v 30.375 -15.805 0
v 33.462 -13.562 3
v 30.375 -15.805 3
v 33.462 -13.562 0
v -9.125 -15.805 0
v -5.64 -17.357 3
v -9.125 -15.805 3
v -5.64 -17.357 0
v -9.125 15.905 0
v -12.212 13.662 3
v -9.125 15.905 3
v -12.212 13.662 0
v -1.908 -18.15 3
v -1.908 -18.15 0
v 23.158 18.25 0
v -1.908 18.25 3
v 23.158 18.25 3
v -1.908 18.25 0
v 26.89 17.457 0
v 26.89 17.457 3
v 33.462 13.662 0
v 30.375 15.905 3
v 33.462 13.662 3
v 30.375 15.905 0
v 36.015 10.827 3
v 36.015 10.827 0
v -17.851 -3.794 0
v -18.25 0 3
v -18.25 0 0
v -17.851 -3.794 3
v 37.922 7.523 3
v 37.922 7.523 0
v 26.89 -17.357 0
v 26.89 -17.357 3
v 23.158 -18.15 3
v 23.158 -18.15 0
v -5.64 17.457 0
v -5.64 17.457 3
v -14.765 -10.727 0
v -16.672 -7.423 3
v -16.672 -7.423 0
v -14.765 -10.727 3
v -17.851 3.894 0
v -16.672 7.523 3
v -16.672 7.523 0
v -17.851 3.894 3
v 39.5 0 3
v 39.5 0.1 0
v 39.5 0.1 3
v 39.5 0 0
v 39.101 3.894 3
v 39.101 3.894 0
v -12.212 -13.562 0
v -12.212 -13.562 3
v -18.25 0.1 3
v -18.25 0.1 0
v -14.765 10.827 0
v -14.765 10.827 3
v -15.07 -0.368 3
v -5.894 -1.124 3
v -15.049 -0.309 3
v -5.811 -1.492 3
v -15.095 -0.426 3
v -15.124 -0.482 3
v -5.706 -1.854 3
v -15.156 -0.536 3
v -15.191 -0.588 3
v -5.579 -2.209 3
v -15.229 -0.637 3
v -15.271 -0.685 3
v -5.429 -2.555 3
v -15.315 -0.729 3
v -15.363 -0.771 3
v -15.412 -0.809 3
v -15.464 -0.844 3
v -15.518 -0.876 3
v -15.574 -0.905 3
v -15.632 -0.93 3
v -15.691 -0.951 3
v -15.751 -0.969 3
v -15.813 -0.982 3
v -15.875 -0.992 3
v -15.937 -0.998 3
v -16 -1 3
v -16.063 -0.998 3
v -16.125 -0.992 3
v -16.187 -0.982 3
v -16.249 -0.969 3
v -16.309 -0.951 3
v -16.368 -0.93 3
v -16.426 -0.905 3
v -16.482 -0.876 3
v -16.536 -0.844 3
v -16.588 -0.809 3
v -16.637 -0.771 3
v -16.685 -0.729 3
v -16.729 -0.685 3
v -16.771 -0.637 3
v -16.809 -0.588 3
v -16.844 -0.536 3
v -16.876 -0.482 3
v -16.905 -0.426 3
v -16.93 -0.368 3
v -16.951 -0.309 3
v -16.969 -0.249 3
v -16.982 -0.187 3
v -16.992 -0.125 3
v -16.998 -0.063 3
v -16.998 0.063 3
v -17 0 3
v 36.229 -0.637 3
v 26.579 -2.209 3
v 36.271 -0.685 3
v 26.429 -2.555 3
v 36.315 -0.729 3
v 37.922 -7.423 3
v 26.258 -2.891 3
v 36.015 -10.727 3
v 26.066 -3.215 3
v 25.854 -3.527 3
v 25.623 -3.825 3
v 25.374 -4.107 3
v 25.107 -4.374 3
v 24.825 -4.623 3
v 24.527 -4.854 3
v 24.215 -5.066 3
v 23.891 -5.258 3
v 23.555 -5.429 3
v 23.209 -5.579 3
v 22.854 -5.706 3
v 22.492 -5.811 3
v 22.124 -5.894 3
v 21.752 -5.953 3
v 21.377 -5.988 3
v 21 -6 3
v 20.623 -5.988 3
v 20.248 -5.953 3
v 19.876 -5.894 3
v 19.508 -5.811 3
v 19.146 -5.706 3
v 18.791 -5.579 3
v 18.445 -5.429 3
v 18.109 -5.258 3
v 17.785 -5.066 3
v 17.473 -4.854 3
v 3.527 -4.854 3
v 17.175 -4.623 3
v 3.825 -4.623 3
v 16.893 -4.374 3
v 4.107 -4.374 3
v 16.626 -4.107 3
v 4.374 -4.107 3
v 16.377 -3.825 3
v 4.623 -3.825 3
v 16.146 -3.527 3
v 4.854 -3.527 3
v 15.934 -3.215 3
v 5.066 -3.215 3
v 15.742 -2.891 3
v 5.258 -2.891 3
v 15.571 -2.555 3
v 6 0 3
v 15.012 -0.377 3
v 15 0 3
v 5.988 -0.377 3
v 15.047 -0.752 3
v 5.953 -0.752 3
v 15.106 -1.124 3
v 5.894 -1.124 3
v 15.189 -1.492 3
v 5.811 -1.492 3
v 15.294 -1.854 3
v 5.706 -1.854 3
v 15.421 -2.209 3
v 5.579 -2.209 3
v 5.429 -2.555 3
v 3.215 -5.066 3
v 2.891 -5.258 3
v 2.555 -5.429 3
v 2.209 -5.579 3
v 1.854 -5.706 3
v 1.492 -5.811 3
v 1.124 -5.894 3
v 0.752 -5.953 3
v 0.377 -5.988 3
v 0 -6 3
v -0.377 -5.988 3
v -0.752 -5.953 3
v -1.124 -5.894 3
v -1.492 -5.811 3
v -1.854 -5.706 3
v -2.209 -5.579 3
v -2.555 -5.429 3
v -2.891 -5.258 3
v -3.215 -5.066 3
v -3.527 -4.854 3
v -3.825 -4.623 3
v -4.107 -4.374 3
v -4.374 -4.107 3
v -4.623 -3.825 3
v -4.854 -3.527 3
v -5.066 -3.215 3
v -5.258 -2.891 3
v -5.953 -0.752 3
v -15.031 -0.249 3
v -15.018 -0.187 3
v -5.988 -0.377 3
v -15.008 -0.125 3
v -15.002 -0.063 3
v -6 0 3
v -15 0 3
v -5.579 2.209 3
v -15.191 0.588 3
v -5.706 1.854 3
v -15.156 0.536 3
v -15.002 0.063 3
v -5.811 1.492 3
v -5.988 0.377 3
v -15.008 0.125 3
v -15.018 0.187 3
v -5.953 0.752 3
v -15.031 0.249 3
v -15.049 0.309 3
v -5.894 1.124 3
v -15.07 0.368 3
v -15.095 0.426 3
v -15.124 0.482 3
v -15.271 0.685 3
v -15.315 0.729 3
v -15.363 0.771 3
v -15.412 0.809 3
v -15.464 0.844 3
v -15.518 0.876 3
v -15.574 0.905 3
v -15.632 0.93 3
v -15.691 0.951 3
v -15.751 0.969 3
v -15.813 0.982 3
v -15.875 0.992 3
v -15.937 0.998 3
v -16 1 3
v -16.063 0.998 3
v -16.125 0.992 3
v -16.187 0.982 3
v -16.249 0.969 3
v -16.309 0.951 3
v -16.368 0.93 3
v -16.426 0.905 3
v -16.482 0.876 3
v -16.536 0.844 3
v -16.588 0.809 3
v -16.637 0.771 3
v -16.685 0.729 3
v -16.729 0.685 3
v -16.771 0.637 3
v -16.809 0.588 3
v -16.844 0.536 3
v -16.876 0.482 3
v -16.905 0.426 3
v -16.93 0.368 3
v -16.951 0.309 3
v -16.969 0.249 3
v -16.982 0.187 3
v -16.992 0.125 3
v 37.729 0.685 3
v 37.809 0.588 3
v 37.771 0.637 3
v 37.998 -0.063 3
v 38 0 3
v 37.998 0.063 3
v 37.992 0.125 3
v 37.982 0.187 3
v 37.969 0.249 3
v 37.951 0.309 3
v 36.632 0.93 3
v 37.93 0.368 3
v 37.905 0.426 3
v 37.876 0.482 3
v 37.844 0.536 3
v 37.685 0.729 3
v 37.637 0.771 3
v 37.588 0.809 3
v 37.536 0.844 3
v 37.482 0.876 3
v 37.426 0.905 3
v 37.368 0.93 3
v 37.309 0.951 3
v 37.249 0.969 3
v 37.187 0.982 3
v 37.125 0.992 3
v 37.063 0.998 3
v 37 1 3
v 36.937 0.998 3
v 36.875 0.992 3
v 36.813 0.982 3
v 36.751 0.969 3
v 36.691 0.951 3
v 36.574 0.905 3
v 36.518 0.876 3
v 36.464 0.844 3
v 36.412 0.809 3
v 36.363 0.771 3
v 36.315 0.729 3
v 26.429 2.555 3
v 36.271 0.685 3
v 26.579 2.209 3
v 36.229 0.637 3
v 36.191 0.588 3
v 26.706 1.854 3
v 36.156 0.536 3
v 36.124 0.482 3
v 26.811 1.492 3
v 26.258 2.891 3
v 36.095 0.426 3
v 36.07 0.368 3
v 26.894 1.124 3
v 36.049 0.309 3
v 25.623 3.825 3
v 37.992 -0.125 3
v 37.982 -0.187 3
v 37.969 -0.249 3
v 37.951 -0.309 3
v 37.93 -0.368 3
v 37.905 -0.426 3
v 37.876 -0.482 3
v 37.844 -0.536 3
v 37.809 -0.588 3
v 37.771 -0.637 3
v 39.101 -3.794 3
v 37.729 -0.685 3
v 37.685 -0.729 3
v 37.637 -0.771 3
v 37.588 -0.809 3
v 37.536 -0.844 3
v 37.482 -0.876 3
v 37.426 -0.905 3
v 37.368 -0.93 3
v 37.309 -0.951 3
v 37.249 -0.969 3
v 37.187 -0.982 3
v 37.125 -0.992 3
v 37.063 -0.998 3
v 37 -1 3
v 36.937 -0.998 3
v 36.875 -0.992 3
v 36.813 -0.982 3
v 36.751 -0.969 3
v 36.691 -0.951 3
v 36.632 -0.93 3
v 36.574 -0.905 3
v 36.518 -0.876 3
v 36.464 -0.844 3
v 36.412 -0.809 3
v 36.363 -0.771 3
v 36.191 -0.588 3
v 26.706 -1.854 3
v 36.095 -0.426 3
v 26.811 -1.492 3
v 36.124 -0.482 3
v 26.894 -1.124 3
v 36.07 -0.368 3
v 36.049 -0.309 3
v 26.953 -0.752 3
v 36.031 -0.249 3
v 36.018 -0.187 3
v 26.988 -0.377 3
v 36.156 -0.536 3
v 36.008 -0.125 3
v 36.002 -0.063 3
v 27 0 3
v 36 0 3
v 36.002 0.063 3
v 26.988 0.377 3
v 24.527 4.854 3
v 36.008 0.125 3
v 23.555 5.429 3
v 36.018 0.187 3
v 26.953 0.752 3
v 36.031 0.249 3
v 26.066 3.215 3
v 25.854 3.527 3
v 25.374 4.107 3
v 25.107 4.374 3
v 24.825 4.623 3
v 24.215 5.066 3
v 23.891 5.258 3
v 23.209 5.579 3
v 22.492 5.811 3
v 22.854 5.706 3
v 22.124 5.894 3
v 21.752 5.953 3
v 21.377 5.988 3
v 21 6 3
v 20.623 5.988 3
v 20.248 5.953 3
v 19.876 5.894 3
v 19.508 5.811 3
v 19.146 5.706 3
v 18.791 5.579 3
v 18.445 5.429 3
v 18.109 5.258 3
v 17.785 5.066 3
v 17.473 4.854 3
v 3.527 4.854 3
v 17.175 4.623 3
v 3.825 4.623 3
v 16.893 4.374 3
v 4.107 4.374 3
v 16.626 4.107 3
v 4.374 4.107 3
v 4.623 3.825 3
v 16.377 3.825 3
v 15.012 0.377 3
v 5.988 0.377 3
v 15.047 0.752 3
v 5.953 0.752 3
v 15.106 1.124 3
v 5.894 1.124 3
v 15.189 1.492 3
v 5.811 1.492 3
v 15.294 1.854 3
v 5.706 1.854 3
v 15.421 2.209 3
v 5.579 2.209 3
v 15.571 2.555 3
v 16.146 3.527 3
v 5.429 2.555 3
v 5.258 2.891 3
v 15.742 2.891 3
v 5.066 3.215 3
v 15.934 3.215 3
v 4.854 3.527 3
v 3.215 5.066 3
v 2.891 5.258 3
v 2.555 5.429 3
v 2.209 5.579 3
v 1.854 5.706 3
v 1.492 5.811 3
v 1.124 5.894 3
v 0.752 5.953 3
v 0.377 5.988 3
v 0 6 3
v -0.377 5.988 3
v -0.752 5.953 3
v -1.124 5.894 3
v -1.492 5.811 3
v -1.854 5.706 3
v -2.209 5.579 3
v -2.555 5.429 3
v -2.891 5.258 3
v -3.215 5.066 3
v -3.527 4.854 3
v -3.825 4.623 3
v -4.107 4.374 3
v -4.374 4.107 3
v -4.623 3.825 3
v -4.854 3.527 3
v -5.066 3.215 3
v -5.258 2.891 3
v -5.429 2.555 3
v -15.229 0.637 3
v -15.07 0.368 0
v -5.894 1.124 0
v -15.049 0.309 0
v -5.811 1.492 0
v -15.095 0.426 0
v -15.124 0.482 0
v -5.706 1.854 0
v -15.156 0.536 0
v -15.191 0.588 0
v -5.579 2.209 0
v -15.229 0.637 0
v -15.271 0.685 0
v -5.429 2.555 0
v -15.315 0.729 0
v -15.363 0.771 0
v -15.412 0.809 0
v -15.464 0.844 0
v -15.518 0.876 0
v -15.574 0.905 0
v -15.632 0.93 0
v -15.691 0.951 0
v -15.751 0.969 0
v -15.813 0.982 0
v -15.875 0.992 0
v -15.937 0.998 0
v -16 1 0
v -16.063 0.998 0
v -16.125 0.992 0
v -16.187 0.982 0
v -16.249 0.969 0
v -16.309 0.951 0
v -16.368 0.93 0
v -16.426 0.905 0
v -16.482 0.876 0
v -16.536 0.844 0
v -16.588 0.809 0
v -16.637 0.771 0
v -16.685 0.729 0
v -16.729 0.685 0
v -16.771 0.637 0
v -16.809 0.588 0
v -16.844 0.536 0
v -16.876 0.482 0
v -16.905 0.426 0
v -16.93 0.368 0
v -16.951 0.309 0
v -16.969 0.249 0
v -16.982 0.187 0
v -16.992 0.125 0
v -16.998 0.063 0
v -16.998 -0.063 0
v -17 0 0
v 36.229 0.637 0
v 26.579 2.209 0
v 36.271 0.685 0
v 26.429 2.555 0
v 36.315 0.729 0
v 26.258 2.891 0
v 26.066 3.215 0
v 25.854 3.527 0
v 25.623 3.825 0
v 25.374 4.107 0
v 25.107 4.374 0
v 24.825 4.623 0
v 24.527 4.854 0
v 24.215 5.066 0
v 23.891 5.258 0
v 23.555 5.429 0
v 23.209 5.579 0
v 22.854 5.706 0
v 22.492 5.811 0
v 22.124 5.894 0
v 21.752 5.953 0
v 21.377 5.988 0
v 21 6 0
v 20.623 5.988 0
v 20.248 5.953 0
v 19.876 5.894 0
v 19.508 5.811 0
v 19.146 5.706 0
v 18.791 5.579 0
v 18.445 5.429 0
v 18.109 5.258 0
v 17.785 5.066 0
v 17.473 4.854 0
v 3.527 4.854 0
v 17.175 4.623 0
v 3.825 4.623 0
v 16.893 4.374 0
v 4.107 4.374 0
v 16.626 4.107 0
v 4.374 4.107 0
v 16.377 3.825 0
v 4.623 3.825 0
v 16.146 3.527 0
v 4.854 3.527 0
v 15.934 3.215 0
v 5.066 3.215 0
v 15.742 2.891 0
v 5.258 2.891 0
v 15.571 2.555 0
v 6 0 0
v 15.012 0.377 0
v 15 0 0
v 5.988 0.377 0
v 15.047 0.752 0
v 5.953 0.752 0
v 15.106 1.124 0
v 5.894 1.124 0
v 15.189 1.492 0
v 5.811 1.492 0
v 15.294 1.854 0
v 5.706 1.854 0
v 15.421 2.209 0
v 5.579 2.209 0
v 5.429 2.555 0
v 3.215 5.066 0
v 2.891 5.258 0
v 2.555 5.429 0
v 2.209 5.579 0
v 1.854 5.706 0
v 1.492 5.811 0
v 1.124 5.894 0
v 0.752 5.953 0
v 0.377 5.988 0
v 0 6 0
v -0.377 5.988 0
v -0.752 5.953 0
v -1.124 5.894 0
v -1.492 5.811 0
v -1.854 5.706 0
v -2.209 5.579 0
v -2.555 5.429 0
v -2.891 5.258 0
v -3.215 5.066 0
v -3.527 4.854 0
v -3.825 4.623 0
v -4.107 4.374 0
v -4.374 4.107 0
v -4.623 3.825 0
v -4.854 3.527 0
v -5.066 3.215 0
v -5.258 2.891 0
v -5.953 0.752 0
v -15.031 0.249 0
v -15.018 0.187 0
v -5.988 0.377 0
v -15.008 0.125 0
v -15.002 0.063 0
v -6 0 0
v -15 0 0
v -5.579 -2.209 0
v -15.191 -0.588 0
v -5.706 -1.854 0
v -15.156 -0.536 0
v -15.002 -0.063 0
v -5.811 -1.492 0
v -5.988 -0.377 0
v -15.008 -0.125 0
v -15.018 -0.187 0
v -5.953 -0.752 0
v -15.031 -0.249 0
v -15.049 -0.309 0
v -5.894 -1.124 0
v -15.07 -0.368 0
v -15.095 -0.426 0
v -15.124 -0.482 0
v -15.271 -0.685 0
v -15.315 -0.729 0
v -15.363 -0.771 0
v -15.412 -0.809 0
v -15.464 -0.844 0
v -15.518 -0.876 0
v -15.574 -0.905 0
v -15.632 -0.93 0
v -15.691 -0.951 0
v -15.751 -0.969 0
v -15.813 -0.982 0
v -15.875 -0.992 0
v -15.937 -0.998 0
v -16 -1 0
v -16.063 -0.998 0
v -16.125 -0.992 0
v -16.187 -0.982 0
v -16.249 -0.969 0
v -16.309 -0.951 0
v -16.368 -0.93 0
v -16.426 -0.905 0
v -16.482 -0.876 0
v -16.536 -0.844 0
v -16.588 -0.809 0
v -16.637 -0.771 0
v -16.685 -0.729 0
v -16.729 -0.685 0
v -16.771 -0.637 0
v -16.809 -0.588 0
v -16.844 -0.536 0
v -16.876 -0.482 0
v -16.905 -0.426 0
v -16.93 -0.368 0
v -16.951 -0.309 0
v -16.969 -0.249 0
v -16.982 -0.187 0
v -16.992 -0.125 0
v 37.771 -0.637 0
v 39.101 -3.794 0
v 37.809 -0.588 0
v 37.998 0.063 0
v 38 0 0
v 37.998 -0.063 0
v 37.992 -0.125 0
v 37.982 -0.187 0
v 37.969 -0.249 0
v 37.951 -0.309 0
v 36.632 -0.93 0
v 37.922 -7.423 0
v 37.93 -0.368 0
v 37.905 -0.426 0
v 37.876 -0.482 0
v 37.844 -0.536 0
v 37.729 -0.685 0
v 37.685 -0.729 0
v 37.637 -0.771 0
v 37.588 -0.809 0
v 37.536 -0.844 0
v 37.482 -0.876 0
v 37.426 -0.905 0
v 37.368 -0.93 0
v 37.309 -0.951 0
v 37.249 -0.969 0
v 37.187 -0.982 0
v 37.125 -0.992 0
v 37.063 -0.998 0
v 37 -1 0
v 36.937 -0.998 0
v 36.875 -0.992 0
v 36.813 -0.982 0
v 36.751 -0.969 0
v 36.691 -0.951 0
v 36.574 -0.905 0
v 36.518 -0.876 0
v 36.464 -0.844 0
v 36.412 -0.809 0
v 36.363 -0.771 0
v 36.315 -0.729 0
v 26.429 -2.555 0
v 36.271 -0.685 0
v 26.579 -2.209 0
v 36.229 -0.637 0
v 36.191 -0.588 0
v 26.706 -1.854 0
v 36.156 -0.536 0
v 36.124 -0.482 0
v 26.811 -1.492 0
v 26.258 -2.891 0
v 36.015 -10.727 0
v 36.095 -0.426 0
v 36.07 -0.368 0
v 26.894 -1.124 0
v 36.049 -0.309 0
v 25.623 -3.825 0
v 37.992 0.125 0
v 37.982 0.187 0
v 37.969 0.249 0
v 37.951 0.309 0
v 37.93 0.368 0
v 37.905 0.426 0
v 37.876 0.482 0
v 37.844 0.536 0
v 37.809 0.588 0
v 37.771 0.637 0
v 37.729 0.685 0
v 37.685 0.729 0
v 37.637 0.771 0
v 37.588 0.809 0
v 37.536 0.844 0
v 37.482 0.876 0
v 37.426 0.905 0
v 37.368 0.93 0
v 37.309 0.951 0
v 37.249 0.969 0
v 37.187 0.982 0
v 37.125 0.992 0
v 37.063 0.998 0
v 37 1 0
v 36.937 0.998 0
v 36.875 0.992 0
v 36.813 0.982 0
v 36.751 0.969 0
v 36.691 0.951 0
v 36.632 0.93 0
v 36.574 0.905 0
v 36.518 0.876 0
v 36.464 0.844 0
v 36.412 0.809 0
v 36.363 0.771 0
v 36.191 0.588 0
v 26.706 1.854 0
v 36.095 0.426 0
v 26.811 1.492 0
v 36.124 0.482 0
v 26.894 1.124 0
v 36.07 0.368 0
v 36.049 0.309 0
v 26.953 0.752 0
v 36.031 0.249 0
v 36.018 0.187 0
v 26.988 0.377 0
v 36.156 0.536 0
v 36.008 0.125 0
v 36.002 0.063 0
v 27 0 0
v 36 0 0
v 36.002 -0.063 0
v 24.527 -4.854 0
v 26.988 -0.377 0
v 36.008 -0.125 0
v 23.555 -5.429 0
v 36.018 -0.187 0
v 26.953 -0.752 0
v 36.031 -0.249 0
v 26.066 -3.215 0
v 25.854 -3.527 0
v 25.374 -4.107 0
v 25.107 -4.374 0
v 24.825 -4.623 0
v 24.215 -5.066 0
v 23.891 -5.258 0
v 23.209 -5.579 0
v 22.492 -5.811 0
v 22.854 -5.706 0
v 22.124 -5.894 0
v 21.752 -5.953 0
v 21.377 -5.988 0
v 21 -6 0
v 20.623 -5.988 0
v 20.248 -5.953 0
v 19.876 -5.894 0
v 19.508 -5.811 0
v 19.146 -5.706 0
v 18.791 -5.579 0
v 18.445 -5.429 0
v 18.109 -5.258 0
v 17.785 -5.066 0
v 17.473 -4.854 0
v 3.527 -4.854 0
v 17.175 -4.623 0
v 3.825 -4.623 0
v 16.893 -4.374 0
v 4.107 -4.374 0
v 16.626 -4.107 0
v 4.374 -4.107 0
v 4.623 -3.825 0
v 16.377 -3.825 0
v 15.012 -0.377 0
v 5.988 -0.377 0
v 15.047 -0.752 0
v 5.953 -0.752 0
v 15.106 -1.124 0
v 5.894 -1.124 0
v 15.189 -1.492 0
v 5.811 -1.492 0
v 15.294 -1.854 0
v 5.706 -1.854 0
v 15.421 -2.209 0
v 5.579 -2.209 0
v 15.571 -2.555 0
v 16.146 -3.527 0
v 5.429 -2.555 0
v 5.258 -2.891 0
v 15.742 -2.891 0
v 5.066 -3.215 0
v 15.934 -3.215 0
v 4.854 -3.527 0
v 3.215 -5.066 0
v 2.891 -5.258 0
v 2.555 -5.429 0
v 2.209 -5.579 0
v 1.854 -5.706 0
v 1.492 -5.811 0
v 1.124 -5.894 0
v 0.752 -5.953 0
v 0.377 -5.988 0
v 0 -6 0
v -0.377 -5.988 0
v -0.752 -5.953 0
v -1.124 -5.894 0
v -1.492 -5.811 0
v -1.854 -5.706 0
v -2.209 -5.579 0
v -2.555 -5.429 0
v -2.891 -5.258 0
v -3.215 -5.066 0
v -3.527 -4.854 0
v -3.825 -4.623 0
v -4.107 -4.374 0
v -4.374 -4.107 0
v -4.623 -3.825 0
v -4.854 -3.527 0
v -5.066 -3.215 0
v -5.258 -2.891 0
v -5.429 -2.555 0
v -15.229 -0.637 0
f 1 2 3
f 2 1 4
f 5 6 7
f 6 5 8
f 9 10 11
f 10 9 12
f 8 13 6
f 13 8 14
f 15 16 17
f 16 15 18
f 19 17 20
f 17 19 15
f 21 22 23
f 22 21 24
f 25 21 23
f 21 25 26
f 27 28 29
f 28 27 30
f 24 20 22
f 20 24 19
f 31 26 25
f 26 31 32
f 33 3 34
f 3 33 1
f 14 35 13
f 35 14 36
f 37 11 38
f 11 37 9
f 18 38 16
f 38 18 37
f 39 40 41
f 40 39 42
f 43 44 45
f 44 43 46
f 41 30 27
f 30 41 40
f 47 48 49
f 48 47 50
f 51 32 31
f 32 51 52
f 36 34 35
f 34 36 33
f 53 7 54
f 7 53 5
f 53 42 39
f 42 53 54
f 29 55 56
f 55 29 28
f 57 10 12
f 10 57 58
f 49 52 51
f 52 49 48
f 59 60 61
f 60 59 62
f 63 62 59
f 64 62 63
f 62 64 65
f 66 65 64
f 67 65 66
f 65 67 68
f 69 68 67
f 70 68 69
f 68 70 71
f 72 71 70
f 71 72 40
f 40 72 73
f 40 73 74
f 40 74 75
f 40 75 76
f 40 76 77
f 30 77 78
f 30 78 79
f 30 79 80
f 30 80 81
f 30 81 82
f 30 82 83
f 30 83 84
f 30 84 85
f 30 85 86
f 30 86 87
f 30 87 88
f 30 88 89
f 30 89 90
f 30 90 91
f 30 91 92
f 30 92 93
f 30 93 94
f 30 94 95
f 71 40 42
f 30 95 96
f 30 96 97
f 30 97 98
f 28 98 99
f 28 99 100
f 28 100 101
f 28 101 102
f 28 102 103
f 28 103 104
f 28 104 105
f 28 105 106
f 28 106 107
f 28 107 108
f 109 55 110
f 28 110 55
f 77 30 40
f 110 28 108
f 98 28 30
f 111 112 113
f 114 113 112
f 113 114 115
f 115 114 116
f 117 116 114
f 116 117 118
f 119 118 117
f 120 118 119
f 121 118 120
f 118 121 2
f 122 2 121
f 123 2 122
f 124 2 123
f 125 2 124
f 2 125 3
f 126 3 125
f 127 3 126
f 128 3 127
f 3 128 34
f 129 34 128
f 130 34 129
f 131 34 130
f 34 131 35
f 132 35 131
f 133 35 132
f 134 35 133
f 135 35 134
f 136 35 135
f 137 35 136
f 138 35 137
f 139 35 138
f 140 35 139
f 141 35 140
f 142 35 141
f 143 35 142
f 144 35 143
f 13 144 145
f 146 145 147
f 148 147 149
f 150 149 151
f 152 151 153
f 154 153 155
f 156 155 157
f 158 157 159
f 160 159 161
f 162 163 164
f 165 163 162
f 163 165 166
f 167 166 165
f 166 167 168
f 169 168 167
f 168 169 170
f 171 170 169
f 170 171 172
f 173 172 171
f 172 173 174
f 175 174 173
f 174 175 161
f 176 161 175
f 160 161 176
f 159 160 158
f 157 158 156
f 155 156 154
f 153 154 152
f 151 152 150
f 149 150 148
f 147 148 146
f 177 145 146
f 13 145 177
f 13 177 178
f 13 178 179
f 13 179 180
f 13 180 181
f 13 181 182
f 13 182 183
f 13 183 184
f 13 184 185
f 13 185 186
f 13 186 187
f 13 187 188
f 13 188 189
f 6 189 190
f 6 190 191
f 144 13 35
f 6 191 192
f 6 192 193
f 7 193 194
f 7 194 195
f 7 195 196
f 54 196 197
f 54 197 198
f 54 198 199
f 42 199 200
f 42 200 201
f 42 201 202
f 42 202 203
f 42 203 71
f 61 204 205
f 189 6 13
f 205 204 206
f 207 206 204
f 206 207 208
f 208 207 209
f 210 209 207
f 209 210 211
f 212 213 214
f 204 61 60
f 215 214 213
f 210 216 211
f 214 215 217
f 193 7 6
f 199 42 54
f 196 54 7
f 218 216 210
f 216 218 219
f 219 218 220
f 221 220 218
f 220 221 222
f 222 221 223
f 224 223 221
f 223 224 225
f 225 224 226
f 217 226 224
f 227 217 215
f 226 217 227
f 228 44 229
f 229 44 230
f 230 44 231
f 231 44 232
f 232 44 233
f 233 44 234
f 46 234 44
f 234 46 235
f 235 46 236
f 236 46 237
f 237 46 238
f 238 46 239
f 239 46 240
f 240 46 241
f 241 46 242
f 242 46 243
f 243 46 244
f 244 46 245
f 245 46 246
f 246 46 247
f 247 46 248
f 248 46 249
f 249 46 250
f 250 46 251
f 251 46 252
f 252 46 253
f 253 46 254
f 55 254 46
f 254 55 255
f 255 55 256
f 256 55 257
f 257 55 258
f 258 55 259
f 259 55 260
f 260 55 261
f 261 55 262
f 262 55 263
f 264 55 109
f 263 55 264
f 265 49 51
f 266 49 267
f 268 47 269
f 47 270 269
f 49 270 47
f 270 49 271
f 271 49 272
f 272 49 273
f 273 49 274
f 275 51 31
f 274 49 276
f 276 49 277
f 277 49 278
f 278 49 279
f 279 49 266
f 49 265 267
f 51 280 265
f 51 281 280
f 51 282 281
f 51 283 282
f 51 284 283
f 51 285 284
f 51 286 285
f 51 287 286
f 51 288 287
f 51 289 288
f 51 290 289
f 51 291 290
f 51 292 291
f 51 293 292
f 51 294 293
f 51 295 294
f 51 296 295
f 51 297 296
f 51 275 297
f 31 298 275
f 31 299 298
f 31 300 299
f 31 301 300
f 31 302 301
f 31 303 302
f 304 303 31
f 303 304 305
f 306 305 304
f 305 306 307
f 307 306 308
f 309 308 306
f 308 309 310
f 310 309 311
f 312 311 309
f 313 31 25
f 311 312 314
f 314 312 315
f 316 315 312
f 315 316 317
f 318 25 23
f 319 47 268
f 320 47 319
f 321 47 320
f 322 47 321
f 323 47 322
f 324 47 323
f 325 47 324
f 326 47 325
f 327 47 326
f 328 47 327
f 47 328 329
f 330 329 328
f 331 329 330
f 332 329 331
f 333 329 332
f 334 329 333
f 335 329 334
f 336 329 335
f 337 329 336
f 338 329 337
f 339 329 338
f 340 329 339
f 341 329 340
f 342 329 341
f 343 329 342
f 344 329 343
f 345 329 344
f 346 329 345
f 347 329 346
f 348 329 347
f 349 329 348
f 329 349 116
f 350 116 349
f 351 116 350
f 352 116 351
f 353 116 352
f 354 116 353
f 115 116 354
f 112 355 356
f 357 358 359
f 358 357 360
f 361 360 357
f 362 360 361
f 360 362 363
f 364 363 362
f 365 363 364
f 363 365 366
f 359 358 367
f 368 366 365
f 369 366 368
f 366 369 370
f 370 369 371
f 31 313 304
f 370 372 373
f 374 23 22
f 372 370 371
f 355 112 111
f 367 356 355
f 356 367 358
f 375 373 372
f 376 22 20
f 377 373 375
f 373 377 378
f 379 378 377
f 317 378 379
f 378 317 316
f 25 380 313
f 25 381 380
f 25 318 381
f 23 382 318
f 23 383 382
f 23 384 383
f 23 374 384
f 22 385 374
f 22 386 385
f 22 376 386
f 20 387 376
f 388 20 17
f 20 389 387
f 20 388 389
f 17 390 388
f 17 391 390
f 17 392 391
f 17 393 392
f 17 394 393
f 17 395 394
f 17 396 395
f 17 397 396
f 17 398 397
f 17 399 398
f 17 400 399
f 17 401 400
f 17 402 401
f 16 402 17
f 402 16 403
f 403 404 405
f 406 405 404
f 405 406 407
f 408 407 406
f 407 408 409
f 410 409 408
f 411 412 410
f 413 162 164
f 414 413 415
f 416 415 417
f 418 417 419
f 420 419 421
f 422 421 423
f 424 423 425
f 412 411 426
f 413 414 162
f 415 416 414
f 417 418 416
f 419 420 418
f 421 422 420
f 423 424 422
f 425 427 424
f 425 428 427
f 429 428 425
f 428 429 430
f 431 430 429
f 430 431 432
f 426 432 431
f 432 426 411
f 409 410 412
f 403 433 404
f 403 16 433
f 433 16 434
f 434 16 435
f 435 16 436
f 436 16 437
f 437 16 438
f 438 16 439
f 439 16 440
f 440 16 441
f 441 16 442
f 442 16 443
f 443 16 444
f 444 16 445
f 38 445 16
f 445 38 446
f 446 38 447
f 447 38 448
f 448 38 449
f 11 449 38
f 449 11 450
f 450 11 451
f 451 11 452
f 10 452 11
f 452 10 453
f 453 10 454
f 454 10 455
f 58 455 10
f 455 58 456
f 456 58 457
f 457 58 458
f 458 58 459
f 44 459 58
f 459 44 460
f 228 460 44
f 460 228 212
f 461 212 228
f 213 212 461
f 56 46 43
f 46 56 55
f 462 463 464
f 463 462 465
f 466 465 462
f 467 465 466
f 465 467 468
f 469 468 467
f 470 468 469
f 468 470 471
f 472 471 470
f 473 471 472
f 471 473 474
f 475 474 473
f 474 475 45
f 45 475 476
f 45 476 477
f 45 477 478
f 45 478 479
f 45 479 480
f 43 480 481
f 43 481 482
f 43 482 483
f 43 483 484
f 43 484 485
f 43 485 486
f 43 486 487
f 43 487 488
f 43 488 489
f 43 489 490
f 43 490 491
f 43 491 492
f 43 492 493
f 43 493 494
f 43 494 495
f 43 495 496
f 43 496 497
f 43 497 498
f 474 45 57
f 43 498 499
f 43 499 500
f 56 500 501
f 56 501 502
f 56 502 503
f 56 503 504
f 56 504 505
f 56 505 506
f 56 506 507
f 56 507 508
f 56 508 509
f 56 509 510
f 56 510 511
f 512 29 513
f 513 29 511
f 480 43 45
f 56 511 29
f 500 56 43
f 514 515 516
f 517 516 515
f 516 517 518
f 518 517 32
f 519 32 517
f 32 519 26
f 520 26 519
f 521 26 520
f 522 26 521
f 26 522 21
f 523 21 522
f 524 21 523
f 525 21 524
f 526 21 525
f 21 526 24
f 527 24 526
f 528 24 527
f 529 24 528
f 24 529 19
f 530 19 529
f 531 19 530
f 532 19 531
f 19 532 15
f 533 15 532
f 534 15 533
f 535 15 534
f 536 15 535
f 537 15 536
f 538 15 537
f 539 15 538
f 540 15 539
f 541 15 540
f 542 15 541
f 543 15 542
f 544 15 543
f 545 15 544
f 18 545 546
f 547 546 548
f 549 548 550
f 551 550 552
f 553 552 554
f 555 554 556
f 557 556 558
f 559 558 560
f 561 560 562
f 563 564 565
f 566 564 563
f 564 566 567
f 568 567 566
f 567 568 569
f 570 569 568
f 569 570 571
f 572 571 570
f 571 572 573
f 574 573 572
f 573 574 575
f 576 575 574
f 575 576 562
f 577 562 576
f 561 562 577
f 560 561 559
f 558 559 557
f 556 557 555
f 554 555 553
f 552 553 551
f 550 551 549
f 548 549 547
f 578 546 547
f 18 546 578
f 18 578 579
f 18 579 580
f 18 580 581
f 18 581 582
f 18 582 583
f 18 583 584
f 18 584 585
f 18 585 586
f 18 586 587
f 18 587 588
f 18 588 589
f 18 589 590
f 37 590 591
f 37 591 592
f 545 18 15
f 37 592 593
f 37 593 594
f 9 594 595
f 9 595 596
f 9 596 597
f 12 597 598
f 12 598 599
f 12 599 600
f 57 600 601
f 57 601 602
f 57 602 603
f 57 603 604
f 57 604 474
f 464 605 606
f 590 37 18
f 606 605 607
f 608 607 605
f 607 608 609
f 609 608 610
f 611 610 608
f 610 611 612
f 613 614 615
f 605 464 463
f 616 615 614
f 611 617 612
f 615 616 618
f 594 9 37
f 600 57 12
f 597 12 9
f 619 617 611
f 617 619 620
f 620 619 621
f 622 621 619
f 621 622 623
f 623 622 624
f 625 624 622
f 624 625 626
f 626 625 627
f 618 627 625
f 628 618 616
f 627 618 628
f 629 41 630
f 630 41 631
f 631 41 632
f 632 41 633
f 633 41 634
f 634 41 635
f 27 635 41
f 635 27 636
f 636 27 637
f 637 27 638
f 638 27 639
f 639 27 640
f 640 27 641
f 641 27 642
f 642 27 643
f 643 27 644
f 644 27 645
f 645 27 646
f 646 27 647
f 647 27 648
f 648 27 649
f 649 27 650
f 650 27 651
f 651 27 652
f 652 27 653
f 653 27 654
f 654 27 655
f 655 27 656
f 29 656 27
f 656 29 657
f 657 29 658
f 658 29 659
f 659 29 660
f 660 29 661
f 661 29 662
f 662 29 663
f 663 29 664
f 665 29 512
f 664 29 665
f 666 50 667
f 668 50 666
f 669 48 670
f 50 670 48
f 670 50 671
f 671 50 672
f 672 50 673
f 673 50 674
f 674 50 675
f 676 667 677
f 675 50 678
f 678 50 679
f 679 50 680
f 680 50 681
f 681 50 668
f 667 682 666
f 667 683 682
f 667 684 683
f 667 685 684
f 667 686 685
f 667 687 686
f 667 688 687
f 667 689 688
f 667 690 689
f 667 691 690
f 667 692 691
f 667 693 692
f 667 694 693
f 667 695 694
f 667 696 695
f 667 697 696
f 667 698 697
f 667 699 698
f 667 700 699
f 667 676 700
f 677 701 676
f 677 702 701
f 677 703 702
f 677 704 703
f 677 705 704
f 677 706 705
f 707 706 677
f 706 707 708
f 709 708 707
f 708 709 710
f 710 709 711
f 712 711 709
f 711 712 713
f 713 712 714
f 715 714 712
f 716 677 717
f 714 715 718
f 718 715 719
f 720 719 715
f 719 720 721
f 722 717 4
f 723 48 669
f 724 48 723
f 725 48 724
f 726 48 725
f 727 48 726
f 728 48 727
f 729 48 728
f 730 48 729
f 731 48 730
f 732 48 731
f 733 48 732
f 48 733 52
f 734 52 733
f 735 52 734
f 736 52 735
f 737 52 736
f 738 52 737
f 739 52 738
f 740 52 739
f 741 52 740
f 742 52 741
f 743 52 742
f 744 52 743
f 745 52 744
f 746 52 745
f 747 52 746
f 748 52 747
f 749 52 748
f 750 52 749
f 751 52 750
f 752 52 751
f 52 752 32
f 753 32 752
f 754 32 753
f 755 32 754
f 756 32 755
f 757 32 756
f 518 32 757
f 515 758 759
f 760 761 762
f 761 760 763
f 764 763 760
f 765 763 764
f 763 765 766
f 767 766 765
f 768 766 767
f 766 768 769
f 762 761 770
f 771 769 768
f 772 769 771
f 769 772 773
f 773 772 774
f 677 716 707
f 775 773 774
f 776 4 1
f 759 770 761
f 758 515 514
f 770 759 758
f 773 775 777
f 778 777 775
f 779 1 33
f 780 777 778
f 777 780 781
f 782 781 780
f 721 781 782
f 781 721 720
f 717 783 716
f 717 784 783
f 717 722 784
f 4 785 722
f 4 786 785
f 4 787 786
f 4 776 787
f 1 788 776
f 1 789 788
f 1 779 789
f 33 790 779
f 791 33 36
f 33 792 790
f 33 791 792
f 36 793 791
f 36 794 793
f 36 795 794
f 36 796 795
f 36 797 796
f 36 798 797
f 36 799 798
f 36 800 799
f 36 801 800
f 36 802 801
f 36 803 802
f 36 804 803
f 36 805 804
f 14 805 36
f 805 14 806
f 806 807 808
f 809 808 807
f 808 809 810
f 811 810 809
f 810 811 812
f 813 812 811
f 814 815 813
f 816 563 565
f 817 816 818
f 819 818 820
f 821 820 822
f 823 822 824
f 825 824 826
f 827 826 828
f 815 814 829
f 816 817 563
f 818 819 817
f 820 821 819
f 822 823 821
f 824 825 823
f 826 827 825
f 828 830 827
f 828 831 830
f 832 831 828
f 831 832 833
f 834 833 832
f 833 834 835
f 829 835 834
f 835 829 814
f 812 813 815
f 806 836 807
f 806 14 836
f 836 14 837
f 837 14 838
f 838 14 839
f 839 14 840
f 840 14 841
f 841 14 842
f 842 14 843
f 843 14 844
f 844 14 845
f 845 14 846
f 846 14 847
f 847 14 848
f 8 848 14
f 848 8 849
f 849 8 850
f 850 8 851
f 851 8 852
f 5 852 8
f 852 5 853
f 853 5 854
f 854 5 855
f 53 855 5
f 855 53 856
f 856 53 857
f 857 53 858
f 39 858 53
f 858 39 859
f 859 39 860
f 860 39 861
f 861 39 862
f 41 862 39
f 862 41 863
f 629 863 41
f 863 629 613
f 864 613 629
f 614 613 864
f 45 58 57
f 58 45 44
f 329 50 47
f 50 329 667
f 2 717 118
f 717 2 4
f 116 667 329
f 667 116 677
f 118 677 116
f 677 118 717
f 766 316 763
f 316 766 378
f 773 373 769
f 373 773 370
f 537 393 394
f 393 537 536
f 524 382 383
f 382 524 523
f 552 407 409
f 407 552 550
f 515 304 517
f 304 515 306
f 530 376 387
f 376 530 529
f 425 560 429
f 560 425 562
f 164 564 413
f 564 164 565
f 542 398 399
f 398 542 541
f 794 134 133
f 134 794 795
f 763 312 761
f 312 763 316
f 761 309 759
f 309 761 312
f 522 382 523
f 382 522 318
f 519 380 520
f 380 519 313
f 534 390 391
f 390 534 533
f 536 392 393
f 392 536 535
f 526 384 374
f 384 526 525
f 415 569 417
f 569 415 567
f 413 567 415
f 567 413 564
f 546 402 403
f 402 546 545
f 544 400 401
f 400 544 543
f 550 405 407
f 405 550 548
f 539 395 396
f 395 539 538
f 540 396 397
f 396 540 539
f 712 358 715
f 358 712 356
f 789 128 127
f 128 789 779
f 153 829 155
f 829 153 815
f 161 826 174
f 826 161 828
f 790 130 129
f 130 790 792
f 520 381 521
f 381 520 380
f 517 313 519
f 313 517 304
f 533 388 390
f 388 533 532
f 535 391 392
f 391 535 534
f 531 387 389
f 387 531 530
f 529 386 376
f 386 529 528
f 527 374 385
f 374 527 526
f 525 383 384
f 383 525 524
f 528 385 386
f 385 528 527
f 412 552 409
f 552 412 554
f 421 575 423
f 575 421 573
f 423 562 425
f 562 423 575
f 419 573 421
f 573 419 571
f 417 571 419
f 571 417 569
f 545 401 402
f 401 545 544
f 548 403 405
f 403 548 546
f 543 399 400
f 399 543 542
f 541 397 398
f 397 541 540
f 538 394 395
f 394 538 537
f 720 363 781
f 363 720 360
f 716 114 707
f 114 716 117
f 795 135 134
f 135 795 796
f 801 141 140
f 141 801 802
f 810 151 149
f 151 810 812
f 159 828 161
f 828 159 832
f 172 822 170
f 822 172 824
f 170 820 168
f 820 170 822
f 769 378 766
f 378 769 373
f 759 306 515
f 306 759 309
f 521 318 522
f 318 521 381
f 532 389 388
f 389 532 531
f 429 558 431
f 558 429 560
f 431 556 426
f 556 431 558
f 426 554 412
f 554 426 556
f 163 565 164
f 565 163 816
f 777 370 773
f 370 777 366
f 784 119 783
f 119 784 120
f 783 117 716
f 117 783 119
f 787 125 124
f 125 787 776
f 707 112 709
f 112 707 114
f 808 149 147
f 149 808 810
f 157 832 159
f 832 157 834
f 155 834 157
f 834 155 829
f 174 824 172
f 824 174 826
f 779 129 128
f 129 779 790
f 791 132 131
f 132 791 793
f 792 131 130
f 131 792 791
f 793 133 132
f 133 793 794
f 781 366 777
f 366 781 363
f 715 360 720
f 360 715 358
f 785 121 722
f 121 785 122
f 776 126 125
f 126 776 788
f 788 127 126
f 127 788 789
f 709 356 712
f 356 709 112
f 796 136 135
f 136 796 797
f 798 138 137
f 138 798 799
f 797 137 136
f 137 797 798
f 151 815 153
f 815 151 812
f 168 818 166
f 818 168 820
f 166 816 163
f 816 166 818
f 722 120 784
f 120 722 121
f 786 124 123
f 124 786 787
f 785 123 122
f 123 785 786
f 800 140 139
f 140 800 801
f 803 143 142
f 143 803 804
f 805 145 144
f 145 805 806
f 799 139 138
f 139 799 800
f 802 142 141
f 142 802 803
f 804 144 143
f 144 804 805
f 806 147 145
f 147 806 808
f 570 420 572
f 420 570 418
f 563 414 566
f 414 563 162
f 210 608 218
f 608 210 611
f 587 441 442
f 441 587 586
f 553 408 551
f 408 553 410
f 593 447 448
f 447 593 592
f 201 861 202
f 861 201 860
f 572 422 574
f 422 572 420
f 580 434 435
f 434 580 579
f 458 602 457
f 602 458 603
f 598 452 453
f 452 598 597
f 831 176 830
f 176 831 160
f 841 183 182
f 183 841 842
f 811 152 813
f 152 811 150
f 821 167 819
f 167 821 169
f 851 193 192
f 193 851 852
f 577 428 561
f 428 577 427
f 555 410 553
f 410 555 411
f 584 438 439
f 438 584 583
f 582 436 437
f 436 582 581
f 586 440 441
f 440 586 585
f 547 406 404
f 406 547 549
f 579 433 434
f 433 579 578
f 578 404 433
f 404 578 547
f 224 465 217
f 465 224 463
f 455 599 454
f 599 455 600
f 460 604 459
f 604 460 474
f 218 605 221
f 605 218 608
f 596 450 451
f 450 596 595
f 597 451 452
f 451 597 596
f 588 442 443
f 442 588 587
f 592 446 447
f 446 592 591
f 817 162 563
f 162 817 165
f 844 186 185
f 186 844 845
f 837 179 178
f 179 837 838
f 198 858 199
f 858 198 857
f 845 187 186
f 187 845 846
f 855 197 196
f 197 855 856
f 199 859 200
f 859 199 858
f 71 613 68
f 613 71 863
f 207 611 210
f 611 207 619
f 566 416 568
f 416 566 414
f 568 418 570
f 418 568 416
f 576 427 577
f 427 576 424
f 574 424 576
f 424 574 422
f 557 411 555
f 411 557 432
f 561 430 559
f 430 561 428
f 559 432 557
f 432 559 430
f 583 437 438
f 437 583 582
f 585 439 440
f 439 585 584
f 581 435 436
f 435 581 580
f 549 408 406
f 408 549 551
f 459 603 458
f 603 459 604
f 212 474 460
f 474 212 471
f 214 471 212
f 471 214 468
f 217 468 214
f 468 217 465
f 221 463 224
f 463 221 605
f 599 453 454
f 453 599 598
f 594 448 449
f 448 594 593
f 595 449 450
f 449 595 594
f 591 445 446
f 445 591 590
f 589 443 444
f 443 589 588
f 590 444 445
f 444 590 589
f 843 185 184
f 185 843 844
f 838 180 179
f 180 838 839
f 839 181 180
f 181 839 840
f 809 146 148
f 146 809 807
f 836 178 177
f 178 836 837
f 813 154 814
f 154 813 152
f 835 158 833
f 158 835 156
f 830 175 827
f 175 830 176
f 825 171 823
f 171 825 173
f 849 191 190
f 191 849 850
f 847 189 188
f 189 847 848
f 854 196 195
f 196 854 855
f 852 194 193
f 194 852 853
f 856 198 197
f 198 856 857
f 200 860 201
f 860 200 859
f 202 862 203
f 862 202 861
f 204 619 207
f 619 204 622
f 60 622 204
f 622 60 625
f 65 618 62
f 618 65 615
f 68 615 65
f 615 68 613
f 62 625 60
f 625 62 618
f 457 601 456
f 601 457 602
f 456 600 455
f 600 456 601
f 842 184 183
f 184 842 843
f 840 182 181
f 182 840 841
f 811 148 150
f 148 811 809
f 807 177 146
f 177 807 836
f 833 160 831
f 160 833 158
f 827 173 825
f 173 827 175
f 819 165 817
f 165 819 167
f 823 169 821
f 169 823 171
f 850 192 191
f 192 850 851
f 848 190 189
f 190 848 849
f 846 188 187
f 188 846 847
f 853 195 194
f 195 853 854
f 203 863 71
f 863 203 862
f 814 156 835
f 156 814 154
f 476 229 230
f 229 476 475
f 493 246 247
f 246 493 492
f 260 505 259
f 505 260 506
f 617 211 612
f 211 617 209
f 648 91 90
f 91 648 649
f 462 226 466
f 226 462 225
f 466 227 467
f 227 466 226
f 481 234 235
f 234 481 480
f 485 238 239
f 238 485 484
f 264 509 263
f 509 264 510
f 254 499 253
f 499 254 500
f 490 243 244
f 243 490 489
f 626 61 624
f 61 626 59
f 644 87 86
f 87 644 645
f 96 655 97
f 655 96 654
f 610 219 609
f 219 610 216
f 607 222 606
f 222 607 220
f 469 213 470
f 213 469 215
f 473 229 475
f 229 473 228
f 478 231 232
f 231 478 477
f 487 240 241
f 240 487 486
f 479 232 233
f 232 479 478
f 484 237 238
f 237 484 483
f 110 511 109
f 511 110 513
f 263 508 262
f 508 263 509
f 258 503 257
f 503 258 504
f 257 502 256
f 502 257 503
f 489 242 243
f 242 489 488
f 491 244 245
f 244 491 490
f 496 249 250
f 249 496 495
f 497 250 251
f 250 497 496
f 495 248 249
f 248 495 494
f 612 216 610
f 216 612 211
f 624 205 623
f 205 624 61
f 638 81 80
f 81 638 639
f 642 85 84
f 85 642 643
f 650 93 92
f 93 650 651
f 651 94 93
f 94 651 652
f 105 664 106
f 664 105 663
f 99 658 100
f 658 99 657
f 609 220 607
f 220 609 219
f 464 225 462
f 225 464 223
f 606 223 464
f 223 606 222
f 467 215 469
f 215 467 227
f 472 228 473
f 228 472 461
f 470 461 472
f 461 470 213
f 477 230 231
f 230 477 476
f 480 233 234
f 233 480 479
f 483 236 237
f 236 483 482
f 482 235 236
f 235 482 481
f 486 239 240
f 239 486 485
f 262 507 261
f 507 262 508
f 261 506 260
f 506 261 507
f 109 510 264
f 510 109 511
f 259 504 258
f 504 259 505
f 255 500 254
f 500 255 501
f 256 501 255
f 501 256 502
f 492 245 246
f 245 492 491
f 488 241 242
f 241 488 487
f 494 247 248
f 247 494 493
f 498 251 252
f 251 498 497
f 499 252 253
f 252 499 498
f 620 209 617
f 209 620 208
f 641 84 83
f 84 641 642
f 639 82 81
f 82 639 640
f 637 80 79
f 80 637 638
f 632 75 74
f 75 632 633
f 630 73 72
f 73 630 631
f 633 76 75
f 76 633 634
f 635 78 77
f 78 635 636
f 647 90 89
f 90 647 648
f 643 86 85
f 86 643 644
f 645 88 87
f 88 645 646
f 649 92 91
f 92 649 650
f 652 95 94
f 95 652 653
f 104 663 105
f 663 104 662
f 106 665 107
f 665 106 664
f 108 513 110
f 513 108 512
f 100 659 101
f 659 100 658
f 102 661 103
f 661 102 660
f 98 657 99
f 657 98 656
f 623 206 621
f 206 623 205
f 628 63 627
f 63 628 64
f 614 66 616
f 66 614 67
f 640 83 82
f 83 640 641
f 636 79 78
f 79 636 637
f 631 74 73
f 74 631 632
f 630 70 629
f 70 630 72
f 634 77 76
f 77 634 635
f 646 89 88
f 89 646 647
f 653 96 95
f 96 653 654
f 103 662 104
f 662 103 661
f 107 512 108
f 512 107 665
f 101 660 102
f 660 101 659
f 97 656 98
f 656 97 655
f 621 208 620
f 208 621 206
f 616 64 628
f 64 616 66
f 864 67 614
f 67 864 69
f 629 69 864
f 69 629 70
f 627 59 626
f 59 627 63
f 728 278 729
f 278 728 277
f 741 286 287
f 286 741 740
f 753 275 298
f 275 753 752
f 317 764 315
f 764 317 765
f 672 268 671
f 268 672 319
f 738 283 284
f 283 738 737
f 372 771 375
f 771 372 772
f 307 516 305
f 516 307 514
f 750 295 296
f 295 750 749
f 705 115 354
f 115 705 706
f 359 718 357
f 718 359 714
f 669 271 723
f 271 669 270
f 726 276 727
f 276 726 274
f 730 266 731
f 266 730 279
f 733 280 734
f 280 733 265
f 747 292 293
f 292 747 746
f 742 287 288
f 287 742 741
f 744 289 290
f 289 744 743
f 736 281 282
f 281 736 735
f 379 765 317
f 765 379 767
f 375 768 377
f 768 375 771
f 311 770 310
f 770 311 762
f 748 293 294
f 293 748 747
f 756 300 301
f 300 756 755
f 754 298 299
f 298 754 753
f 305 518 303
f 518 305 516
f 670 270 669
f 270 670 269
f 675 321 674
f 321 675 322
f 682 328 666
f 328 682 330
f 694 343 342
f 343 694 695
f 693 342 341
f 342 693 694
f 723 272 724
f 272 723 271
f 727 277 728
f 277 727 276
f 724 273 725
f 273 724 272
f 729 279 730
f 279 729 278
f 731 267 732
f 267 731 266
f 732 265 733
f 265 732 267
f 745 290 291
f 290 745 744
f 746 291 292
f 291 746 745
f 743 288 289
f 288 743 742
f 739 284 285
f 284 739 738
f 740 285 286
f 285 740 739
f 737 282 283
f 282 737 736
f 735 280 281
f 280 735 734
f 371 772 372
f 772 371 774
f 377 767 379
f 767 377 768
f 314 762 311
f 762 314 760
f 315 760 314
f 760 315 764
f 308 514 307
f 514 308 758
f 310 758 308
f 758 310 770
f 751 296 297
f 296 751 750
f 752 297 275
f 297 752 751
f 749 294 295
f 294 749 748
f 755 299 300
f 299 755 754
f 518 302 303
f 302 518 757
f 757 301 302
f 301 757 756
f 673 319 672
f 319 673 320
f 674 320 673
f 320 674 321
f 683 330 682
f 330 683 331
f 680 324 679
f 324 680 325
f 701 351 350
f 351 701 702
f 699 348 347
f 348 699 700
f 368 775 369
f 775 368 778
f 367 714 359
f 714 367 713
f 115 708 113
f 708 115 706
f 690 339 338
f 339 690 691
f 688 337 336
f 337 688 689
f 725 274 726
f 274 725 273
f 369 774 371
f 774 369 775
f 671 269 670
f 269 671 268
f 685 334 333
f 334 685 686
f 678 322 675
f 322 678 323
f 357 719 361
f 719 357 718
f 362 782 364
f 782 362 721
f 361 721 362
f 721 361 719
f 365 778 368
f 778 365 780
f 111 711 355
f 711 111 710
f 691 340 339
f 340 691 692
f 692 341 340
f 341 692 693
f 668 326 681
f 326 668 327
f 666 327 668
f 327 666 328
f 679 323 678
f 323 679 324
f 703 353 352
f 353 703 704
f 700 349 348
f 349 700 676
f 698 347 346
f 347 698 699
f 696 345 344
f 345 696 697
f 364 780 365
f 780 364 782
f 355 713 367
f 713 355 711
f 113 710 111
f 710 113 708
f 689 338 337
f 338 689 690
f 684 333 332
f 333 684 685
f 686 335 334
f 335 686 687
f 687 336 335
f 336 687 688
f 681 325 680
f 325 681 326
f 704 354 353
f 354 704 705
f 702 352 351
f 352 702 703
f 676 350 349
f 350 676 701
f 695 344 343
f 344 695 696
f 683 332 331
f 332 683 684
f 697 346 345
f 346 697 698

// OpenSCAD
//2022_05_20

//--version 4



module flight_stick_cap()
{
 difference() 
 {
    
   45V(h=3, w=36.5 ,l=39.5); 
  
   //button holes  
   translate([21, , 0])cylinder(r = 6, h = 25, center = true, $fn=100);
   translate([0, , 0]) cylinder(r = 6, h = 25, center = true, $fn=100);
     
   //screw holes
   translate([-16, , 0])cylinder(r = 1, h = 25, center = true, $fn=100);
   translate([37, , 0]) cylinder(r = 1, h = 25, center = true, $fn=100);  
     
 } 
 

}

module 45V(h=25, w=30 ,l=40)
{




minkowski()
{
 cube([l-w/2,0.1,h/2]);
 cylinder(r=w/2,h=h/2);
}

}

module button_holder()
{
   difference() 
    {
         
         cylinder(r = 5.8, h = 40, center = true, $fn=100);
    }   
}





flight_stick_cap();

 
